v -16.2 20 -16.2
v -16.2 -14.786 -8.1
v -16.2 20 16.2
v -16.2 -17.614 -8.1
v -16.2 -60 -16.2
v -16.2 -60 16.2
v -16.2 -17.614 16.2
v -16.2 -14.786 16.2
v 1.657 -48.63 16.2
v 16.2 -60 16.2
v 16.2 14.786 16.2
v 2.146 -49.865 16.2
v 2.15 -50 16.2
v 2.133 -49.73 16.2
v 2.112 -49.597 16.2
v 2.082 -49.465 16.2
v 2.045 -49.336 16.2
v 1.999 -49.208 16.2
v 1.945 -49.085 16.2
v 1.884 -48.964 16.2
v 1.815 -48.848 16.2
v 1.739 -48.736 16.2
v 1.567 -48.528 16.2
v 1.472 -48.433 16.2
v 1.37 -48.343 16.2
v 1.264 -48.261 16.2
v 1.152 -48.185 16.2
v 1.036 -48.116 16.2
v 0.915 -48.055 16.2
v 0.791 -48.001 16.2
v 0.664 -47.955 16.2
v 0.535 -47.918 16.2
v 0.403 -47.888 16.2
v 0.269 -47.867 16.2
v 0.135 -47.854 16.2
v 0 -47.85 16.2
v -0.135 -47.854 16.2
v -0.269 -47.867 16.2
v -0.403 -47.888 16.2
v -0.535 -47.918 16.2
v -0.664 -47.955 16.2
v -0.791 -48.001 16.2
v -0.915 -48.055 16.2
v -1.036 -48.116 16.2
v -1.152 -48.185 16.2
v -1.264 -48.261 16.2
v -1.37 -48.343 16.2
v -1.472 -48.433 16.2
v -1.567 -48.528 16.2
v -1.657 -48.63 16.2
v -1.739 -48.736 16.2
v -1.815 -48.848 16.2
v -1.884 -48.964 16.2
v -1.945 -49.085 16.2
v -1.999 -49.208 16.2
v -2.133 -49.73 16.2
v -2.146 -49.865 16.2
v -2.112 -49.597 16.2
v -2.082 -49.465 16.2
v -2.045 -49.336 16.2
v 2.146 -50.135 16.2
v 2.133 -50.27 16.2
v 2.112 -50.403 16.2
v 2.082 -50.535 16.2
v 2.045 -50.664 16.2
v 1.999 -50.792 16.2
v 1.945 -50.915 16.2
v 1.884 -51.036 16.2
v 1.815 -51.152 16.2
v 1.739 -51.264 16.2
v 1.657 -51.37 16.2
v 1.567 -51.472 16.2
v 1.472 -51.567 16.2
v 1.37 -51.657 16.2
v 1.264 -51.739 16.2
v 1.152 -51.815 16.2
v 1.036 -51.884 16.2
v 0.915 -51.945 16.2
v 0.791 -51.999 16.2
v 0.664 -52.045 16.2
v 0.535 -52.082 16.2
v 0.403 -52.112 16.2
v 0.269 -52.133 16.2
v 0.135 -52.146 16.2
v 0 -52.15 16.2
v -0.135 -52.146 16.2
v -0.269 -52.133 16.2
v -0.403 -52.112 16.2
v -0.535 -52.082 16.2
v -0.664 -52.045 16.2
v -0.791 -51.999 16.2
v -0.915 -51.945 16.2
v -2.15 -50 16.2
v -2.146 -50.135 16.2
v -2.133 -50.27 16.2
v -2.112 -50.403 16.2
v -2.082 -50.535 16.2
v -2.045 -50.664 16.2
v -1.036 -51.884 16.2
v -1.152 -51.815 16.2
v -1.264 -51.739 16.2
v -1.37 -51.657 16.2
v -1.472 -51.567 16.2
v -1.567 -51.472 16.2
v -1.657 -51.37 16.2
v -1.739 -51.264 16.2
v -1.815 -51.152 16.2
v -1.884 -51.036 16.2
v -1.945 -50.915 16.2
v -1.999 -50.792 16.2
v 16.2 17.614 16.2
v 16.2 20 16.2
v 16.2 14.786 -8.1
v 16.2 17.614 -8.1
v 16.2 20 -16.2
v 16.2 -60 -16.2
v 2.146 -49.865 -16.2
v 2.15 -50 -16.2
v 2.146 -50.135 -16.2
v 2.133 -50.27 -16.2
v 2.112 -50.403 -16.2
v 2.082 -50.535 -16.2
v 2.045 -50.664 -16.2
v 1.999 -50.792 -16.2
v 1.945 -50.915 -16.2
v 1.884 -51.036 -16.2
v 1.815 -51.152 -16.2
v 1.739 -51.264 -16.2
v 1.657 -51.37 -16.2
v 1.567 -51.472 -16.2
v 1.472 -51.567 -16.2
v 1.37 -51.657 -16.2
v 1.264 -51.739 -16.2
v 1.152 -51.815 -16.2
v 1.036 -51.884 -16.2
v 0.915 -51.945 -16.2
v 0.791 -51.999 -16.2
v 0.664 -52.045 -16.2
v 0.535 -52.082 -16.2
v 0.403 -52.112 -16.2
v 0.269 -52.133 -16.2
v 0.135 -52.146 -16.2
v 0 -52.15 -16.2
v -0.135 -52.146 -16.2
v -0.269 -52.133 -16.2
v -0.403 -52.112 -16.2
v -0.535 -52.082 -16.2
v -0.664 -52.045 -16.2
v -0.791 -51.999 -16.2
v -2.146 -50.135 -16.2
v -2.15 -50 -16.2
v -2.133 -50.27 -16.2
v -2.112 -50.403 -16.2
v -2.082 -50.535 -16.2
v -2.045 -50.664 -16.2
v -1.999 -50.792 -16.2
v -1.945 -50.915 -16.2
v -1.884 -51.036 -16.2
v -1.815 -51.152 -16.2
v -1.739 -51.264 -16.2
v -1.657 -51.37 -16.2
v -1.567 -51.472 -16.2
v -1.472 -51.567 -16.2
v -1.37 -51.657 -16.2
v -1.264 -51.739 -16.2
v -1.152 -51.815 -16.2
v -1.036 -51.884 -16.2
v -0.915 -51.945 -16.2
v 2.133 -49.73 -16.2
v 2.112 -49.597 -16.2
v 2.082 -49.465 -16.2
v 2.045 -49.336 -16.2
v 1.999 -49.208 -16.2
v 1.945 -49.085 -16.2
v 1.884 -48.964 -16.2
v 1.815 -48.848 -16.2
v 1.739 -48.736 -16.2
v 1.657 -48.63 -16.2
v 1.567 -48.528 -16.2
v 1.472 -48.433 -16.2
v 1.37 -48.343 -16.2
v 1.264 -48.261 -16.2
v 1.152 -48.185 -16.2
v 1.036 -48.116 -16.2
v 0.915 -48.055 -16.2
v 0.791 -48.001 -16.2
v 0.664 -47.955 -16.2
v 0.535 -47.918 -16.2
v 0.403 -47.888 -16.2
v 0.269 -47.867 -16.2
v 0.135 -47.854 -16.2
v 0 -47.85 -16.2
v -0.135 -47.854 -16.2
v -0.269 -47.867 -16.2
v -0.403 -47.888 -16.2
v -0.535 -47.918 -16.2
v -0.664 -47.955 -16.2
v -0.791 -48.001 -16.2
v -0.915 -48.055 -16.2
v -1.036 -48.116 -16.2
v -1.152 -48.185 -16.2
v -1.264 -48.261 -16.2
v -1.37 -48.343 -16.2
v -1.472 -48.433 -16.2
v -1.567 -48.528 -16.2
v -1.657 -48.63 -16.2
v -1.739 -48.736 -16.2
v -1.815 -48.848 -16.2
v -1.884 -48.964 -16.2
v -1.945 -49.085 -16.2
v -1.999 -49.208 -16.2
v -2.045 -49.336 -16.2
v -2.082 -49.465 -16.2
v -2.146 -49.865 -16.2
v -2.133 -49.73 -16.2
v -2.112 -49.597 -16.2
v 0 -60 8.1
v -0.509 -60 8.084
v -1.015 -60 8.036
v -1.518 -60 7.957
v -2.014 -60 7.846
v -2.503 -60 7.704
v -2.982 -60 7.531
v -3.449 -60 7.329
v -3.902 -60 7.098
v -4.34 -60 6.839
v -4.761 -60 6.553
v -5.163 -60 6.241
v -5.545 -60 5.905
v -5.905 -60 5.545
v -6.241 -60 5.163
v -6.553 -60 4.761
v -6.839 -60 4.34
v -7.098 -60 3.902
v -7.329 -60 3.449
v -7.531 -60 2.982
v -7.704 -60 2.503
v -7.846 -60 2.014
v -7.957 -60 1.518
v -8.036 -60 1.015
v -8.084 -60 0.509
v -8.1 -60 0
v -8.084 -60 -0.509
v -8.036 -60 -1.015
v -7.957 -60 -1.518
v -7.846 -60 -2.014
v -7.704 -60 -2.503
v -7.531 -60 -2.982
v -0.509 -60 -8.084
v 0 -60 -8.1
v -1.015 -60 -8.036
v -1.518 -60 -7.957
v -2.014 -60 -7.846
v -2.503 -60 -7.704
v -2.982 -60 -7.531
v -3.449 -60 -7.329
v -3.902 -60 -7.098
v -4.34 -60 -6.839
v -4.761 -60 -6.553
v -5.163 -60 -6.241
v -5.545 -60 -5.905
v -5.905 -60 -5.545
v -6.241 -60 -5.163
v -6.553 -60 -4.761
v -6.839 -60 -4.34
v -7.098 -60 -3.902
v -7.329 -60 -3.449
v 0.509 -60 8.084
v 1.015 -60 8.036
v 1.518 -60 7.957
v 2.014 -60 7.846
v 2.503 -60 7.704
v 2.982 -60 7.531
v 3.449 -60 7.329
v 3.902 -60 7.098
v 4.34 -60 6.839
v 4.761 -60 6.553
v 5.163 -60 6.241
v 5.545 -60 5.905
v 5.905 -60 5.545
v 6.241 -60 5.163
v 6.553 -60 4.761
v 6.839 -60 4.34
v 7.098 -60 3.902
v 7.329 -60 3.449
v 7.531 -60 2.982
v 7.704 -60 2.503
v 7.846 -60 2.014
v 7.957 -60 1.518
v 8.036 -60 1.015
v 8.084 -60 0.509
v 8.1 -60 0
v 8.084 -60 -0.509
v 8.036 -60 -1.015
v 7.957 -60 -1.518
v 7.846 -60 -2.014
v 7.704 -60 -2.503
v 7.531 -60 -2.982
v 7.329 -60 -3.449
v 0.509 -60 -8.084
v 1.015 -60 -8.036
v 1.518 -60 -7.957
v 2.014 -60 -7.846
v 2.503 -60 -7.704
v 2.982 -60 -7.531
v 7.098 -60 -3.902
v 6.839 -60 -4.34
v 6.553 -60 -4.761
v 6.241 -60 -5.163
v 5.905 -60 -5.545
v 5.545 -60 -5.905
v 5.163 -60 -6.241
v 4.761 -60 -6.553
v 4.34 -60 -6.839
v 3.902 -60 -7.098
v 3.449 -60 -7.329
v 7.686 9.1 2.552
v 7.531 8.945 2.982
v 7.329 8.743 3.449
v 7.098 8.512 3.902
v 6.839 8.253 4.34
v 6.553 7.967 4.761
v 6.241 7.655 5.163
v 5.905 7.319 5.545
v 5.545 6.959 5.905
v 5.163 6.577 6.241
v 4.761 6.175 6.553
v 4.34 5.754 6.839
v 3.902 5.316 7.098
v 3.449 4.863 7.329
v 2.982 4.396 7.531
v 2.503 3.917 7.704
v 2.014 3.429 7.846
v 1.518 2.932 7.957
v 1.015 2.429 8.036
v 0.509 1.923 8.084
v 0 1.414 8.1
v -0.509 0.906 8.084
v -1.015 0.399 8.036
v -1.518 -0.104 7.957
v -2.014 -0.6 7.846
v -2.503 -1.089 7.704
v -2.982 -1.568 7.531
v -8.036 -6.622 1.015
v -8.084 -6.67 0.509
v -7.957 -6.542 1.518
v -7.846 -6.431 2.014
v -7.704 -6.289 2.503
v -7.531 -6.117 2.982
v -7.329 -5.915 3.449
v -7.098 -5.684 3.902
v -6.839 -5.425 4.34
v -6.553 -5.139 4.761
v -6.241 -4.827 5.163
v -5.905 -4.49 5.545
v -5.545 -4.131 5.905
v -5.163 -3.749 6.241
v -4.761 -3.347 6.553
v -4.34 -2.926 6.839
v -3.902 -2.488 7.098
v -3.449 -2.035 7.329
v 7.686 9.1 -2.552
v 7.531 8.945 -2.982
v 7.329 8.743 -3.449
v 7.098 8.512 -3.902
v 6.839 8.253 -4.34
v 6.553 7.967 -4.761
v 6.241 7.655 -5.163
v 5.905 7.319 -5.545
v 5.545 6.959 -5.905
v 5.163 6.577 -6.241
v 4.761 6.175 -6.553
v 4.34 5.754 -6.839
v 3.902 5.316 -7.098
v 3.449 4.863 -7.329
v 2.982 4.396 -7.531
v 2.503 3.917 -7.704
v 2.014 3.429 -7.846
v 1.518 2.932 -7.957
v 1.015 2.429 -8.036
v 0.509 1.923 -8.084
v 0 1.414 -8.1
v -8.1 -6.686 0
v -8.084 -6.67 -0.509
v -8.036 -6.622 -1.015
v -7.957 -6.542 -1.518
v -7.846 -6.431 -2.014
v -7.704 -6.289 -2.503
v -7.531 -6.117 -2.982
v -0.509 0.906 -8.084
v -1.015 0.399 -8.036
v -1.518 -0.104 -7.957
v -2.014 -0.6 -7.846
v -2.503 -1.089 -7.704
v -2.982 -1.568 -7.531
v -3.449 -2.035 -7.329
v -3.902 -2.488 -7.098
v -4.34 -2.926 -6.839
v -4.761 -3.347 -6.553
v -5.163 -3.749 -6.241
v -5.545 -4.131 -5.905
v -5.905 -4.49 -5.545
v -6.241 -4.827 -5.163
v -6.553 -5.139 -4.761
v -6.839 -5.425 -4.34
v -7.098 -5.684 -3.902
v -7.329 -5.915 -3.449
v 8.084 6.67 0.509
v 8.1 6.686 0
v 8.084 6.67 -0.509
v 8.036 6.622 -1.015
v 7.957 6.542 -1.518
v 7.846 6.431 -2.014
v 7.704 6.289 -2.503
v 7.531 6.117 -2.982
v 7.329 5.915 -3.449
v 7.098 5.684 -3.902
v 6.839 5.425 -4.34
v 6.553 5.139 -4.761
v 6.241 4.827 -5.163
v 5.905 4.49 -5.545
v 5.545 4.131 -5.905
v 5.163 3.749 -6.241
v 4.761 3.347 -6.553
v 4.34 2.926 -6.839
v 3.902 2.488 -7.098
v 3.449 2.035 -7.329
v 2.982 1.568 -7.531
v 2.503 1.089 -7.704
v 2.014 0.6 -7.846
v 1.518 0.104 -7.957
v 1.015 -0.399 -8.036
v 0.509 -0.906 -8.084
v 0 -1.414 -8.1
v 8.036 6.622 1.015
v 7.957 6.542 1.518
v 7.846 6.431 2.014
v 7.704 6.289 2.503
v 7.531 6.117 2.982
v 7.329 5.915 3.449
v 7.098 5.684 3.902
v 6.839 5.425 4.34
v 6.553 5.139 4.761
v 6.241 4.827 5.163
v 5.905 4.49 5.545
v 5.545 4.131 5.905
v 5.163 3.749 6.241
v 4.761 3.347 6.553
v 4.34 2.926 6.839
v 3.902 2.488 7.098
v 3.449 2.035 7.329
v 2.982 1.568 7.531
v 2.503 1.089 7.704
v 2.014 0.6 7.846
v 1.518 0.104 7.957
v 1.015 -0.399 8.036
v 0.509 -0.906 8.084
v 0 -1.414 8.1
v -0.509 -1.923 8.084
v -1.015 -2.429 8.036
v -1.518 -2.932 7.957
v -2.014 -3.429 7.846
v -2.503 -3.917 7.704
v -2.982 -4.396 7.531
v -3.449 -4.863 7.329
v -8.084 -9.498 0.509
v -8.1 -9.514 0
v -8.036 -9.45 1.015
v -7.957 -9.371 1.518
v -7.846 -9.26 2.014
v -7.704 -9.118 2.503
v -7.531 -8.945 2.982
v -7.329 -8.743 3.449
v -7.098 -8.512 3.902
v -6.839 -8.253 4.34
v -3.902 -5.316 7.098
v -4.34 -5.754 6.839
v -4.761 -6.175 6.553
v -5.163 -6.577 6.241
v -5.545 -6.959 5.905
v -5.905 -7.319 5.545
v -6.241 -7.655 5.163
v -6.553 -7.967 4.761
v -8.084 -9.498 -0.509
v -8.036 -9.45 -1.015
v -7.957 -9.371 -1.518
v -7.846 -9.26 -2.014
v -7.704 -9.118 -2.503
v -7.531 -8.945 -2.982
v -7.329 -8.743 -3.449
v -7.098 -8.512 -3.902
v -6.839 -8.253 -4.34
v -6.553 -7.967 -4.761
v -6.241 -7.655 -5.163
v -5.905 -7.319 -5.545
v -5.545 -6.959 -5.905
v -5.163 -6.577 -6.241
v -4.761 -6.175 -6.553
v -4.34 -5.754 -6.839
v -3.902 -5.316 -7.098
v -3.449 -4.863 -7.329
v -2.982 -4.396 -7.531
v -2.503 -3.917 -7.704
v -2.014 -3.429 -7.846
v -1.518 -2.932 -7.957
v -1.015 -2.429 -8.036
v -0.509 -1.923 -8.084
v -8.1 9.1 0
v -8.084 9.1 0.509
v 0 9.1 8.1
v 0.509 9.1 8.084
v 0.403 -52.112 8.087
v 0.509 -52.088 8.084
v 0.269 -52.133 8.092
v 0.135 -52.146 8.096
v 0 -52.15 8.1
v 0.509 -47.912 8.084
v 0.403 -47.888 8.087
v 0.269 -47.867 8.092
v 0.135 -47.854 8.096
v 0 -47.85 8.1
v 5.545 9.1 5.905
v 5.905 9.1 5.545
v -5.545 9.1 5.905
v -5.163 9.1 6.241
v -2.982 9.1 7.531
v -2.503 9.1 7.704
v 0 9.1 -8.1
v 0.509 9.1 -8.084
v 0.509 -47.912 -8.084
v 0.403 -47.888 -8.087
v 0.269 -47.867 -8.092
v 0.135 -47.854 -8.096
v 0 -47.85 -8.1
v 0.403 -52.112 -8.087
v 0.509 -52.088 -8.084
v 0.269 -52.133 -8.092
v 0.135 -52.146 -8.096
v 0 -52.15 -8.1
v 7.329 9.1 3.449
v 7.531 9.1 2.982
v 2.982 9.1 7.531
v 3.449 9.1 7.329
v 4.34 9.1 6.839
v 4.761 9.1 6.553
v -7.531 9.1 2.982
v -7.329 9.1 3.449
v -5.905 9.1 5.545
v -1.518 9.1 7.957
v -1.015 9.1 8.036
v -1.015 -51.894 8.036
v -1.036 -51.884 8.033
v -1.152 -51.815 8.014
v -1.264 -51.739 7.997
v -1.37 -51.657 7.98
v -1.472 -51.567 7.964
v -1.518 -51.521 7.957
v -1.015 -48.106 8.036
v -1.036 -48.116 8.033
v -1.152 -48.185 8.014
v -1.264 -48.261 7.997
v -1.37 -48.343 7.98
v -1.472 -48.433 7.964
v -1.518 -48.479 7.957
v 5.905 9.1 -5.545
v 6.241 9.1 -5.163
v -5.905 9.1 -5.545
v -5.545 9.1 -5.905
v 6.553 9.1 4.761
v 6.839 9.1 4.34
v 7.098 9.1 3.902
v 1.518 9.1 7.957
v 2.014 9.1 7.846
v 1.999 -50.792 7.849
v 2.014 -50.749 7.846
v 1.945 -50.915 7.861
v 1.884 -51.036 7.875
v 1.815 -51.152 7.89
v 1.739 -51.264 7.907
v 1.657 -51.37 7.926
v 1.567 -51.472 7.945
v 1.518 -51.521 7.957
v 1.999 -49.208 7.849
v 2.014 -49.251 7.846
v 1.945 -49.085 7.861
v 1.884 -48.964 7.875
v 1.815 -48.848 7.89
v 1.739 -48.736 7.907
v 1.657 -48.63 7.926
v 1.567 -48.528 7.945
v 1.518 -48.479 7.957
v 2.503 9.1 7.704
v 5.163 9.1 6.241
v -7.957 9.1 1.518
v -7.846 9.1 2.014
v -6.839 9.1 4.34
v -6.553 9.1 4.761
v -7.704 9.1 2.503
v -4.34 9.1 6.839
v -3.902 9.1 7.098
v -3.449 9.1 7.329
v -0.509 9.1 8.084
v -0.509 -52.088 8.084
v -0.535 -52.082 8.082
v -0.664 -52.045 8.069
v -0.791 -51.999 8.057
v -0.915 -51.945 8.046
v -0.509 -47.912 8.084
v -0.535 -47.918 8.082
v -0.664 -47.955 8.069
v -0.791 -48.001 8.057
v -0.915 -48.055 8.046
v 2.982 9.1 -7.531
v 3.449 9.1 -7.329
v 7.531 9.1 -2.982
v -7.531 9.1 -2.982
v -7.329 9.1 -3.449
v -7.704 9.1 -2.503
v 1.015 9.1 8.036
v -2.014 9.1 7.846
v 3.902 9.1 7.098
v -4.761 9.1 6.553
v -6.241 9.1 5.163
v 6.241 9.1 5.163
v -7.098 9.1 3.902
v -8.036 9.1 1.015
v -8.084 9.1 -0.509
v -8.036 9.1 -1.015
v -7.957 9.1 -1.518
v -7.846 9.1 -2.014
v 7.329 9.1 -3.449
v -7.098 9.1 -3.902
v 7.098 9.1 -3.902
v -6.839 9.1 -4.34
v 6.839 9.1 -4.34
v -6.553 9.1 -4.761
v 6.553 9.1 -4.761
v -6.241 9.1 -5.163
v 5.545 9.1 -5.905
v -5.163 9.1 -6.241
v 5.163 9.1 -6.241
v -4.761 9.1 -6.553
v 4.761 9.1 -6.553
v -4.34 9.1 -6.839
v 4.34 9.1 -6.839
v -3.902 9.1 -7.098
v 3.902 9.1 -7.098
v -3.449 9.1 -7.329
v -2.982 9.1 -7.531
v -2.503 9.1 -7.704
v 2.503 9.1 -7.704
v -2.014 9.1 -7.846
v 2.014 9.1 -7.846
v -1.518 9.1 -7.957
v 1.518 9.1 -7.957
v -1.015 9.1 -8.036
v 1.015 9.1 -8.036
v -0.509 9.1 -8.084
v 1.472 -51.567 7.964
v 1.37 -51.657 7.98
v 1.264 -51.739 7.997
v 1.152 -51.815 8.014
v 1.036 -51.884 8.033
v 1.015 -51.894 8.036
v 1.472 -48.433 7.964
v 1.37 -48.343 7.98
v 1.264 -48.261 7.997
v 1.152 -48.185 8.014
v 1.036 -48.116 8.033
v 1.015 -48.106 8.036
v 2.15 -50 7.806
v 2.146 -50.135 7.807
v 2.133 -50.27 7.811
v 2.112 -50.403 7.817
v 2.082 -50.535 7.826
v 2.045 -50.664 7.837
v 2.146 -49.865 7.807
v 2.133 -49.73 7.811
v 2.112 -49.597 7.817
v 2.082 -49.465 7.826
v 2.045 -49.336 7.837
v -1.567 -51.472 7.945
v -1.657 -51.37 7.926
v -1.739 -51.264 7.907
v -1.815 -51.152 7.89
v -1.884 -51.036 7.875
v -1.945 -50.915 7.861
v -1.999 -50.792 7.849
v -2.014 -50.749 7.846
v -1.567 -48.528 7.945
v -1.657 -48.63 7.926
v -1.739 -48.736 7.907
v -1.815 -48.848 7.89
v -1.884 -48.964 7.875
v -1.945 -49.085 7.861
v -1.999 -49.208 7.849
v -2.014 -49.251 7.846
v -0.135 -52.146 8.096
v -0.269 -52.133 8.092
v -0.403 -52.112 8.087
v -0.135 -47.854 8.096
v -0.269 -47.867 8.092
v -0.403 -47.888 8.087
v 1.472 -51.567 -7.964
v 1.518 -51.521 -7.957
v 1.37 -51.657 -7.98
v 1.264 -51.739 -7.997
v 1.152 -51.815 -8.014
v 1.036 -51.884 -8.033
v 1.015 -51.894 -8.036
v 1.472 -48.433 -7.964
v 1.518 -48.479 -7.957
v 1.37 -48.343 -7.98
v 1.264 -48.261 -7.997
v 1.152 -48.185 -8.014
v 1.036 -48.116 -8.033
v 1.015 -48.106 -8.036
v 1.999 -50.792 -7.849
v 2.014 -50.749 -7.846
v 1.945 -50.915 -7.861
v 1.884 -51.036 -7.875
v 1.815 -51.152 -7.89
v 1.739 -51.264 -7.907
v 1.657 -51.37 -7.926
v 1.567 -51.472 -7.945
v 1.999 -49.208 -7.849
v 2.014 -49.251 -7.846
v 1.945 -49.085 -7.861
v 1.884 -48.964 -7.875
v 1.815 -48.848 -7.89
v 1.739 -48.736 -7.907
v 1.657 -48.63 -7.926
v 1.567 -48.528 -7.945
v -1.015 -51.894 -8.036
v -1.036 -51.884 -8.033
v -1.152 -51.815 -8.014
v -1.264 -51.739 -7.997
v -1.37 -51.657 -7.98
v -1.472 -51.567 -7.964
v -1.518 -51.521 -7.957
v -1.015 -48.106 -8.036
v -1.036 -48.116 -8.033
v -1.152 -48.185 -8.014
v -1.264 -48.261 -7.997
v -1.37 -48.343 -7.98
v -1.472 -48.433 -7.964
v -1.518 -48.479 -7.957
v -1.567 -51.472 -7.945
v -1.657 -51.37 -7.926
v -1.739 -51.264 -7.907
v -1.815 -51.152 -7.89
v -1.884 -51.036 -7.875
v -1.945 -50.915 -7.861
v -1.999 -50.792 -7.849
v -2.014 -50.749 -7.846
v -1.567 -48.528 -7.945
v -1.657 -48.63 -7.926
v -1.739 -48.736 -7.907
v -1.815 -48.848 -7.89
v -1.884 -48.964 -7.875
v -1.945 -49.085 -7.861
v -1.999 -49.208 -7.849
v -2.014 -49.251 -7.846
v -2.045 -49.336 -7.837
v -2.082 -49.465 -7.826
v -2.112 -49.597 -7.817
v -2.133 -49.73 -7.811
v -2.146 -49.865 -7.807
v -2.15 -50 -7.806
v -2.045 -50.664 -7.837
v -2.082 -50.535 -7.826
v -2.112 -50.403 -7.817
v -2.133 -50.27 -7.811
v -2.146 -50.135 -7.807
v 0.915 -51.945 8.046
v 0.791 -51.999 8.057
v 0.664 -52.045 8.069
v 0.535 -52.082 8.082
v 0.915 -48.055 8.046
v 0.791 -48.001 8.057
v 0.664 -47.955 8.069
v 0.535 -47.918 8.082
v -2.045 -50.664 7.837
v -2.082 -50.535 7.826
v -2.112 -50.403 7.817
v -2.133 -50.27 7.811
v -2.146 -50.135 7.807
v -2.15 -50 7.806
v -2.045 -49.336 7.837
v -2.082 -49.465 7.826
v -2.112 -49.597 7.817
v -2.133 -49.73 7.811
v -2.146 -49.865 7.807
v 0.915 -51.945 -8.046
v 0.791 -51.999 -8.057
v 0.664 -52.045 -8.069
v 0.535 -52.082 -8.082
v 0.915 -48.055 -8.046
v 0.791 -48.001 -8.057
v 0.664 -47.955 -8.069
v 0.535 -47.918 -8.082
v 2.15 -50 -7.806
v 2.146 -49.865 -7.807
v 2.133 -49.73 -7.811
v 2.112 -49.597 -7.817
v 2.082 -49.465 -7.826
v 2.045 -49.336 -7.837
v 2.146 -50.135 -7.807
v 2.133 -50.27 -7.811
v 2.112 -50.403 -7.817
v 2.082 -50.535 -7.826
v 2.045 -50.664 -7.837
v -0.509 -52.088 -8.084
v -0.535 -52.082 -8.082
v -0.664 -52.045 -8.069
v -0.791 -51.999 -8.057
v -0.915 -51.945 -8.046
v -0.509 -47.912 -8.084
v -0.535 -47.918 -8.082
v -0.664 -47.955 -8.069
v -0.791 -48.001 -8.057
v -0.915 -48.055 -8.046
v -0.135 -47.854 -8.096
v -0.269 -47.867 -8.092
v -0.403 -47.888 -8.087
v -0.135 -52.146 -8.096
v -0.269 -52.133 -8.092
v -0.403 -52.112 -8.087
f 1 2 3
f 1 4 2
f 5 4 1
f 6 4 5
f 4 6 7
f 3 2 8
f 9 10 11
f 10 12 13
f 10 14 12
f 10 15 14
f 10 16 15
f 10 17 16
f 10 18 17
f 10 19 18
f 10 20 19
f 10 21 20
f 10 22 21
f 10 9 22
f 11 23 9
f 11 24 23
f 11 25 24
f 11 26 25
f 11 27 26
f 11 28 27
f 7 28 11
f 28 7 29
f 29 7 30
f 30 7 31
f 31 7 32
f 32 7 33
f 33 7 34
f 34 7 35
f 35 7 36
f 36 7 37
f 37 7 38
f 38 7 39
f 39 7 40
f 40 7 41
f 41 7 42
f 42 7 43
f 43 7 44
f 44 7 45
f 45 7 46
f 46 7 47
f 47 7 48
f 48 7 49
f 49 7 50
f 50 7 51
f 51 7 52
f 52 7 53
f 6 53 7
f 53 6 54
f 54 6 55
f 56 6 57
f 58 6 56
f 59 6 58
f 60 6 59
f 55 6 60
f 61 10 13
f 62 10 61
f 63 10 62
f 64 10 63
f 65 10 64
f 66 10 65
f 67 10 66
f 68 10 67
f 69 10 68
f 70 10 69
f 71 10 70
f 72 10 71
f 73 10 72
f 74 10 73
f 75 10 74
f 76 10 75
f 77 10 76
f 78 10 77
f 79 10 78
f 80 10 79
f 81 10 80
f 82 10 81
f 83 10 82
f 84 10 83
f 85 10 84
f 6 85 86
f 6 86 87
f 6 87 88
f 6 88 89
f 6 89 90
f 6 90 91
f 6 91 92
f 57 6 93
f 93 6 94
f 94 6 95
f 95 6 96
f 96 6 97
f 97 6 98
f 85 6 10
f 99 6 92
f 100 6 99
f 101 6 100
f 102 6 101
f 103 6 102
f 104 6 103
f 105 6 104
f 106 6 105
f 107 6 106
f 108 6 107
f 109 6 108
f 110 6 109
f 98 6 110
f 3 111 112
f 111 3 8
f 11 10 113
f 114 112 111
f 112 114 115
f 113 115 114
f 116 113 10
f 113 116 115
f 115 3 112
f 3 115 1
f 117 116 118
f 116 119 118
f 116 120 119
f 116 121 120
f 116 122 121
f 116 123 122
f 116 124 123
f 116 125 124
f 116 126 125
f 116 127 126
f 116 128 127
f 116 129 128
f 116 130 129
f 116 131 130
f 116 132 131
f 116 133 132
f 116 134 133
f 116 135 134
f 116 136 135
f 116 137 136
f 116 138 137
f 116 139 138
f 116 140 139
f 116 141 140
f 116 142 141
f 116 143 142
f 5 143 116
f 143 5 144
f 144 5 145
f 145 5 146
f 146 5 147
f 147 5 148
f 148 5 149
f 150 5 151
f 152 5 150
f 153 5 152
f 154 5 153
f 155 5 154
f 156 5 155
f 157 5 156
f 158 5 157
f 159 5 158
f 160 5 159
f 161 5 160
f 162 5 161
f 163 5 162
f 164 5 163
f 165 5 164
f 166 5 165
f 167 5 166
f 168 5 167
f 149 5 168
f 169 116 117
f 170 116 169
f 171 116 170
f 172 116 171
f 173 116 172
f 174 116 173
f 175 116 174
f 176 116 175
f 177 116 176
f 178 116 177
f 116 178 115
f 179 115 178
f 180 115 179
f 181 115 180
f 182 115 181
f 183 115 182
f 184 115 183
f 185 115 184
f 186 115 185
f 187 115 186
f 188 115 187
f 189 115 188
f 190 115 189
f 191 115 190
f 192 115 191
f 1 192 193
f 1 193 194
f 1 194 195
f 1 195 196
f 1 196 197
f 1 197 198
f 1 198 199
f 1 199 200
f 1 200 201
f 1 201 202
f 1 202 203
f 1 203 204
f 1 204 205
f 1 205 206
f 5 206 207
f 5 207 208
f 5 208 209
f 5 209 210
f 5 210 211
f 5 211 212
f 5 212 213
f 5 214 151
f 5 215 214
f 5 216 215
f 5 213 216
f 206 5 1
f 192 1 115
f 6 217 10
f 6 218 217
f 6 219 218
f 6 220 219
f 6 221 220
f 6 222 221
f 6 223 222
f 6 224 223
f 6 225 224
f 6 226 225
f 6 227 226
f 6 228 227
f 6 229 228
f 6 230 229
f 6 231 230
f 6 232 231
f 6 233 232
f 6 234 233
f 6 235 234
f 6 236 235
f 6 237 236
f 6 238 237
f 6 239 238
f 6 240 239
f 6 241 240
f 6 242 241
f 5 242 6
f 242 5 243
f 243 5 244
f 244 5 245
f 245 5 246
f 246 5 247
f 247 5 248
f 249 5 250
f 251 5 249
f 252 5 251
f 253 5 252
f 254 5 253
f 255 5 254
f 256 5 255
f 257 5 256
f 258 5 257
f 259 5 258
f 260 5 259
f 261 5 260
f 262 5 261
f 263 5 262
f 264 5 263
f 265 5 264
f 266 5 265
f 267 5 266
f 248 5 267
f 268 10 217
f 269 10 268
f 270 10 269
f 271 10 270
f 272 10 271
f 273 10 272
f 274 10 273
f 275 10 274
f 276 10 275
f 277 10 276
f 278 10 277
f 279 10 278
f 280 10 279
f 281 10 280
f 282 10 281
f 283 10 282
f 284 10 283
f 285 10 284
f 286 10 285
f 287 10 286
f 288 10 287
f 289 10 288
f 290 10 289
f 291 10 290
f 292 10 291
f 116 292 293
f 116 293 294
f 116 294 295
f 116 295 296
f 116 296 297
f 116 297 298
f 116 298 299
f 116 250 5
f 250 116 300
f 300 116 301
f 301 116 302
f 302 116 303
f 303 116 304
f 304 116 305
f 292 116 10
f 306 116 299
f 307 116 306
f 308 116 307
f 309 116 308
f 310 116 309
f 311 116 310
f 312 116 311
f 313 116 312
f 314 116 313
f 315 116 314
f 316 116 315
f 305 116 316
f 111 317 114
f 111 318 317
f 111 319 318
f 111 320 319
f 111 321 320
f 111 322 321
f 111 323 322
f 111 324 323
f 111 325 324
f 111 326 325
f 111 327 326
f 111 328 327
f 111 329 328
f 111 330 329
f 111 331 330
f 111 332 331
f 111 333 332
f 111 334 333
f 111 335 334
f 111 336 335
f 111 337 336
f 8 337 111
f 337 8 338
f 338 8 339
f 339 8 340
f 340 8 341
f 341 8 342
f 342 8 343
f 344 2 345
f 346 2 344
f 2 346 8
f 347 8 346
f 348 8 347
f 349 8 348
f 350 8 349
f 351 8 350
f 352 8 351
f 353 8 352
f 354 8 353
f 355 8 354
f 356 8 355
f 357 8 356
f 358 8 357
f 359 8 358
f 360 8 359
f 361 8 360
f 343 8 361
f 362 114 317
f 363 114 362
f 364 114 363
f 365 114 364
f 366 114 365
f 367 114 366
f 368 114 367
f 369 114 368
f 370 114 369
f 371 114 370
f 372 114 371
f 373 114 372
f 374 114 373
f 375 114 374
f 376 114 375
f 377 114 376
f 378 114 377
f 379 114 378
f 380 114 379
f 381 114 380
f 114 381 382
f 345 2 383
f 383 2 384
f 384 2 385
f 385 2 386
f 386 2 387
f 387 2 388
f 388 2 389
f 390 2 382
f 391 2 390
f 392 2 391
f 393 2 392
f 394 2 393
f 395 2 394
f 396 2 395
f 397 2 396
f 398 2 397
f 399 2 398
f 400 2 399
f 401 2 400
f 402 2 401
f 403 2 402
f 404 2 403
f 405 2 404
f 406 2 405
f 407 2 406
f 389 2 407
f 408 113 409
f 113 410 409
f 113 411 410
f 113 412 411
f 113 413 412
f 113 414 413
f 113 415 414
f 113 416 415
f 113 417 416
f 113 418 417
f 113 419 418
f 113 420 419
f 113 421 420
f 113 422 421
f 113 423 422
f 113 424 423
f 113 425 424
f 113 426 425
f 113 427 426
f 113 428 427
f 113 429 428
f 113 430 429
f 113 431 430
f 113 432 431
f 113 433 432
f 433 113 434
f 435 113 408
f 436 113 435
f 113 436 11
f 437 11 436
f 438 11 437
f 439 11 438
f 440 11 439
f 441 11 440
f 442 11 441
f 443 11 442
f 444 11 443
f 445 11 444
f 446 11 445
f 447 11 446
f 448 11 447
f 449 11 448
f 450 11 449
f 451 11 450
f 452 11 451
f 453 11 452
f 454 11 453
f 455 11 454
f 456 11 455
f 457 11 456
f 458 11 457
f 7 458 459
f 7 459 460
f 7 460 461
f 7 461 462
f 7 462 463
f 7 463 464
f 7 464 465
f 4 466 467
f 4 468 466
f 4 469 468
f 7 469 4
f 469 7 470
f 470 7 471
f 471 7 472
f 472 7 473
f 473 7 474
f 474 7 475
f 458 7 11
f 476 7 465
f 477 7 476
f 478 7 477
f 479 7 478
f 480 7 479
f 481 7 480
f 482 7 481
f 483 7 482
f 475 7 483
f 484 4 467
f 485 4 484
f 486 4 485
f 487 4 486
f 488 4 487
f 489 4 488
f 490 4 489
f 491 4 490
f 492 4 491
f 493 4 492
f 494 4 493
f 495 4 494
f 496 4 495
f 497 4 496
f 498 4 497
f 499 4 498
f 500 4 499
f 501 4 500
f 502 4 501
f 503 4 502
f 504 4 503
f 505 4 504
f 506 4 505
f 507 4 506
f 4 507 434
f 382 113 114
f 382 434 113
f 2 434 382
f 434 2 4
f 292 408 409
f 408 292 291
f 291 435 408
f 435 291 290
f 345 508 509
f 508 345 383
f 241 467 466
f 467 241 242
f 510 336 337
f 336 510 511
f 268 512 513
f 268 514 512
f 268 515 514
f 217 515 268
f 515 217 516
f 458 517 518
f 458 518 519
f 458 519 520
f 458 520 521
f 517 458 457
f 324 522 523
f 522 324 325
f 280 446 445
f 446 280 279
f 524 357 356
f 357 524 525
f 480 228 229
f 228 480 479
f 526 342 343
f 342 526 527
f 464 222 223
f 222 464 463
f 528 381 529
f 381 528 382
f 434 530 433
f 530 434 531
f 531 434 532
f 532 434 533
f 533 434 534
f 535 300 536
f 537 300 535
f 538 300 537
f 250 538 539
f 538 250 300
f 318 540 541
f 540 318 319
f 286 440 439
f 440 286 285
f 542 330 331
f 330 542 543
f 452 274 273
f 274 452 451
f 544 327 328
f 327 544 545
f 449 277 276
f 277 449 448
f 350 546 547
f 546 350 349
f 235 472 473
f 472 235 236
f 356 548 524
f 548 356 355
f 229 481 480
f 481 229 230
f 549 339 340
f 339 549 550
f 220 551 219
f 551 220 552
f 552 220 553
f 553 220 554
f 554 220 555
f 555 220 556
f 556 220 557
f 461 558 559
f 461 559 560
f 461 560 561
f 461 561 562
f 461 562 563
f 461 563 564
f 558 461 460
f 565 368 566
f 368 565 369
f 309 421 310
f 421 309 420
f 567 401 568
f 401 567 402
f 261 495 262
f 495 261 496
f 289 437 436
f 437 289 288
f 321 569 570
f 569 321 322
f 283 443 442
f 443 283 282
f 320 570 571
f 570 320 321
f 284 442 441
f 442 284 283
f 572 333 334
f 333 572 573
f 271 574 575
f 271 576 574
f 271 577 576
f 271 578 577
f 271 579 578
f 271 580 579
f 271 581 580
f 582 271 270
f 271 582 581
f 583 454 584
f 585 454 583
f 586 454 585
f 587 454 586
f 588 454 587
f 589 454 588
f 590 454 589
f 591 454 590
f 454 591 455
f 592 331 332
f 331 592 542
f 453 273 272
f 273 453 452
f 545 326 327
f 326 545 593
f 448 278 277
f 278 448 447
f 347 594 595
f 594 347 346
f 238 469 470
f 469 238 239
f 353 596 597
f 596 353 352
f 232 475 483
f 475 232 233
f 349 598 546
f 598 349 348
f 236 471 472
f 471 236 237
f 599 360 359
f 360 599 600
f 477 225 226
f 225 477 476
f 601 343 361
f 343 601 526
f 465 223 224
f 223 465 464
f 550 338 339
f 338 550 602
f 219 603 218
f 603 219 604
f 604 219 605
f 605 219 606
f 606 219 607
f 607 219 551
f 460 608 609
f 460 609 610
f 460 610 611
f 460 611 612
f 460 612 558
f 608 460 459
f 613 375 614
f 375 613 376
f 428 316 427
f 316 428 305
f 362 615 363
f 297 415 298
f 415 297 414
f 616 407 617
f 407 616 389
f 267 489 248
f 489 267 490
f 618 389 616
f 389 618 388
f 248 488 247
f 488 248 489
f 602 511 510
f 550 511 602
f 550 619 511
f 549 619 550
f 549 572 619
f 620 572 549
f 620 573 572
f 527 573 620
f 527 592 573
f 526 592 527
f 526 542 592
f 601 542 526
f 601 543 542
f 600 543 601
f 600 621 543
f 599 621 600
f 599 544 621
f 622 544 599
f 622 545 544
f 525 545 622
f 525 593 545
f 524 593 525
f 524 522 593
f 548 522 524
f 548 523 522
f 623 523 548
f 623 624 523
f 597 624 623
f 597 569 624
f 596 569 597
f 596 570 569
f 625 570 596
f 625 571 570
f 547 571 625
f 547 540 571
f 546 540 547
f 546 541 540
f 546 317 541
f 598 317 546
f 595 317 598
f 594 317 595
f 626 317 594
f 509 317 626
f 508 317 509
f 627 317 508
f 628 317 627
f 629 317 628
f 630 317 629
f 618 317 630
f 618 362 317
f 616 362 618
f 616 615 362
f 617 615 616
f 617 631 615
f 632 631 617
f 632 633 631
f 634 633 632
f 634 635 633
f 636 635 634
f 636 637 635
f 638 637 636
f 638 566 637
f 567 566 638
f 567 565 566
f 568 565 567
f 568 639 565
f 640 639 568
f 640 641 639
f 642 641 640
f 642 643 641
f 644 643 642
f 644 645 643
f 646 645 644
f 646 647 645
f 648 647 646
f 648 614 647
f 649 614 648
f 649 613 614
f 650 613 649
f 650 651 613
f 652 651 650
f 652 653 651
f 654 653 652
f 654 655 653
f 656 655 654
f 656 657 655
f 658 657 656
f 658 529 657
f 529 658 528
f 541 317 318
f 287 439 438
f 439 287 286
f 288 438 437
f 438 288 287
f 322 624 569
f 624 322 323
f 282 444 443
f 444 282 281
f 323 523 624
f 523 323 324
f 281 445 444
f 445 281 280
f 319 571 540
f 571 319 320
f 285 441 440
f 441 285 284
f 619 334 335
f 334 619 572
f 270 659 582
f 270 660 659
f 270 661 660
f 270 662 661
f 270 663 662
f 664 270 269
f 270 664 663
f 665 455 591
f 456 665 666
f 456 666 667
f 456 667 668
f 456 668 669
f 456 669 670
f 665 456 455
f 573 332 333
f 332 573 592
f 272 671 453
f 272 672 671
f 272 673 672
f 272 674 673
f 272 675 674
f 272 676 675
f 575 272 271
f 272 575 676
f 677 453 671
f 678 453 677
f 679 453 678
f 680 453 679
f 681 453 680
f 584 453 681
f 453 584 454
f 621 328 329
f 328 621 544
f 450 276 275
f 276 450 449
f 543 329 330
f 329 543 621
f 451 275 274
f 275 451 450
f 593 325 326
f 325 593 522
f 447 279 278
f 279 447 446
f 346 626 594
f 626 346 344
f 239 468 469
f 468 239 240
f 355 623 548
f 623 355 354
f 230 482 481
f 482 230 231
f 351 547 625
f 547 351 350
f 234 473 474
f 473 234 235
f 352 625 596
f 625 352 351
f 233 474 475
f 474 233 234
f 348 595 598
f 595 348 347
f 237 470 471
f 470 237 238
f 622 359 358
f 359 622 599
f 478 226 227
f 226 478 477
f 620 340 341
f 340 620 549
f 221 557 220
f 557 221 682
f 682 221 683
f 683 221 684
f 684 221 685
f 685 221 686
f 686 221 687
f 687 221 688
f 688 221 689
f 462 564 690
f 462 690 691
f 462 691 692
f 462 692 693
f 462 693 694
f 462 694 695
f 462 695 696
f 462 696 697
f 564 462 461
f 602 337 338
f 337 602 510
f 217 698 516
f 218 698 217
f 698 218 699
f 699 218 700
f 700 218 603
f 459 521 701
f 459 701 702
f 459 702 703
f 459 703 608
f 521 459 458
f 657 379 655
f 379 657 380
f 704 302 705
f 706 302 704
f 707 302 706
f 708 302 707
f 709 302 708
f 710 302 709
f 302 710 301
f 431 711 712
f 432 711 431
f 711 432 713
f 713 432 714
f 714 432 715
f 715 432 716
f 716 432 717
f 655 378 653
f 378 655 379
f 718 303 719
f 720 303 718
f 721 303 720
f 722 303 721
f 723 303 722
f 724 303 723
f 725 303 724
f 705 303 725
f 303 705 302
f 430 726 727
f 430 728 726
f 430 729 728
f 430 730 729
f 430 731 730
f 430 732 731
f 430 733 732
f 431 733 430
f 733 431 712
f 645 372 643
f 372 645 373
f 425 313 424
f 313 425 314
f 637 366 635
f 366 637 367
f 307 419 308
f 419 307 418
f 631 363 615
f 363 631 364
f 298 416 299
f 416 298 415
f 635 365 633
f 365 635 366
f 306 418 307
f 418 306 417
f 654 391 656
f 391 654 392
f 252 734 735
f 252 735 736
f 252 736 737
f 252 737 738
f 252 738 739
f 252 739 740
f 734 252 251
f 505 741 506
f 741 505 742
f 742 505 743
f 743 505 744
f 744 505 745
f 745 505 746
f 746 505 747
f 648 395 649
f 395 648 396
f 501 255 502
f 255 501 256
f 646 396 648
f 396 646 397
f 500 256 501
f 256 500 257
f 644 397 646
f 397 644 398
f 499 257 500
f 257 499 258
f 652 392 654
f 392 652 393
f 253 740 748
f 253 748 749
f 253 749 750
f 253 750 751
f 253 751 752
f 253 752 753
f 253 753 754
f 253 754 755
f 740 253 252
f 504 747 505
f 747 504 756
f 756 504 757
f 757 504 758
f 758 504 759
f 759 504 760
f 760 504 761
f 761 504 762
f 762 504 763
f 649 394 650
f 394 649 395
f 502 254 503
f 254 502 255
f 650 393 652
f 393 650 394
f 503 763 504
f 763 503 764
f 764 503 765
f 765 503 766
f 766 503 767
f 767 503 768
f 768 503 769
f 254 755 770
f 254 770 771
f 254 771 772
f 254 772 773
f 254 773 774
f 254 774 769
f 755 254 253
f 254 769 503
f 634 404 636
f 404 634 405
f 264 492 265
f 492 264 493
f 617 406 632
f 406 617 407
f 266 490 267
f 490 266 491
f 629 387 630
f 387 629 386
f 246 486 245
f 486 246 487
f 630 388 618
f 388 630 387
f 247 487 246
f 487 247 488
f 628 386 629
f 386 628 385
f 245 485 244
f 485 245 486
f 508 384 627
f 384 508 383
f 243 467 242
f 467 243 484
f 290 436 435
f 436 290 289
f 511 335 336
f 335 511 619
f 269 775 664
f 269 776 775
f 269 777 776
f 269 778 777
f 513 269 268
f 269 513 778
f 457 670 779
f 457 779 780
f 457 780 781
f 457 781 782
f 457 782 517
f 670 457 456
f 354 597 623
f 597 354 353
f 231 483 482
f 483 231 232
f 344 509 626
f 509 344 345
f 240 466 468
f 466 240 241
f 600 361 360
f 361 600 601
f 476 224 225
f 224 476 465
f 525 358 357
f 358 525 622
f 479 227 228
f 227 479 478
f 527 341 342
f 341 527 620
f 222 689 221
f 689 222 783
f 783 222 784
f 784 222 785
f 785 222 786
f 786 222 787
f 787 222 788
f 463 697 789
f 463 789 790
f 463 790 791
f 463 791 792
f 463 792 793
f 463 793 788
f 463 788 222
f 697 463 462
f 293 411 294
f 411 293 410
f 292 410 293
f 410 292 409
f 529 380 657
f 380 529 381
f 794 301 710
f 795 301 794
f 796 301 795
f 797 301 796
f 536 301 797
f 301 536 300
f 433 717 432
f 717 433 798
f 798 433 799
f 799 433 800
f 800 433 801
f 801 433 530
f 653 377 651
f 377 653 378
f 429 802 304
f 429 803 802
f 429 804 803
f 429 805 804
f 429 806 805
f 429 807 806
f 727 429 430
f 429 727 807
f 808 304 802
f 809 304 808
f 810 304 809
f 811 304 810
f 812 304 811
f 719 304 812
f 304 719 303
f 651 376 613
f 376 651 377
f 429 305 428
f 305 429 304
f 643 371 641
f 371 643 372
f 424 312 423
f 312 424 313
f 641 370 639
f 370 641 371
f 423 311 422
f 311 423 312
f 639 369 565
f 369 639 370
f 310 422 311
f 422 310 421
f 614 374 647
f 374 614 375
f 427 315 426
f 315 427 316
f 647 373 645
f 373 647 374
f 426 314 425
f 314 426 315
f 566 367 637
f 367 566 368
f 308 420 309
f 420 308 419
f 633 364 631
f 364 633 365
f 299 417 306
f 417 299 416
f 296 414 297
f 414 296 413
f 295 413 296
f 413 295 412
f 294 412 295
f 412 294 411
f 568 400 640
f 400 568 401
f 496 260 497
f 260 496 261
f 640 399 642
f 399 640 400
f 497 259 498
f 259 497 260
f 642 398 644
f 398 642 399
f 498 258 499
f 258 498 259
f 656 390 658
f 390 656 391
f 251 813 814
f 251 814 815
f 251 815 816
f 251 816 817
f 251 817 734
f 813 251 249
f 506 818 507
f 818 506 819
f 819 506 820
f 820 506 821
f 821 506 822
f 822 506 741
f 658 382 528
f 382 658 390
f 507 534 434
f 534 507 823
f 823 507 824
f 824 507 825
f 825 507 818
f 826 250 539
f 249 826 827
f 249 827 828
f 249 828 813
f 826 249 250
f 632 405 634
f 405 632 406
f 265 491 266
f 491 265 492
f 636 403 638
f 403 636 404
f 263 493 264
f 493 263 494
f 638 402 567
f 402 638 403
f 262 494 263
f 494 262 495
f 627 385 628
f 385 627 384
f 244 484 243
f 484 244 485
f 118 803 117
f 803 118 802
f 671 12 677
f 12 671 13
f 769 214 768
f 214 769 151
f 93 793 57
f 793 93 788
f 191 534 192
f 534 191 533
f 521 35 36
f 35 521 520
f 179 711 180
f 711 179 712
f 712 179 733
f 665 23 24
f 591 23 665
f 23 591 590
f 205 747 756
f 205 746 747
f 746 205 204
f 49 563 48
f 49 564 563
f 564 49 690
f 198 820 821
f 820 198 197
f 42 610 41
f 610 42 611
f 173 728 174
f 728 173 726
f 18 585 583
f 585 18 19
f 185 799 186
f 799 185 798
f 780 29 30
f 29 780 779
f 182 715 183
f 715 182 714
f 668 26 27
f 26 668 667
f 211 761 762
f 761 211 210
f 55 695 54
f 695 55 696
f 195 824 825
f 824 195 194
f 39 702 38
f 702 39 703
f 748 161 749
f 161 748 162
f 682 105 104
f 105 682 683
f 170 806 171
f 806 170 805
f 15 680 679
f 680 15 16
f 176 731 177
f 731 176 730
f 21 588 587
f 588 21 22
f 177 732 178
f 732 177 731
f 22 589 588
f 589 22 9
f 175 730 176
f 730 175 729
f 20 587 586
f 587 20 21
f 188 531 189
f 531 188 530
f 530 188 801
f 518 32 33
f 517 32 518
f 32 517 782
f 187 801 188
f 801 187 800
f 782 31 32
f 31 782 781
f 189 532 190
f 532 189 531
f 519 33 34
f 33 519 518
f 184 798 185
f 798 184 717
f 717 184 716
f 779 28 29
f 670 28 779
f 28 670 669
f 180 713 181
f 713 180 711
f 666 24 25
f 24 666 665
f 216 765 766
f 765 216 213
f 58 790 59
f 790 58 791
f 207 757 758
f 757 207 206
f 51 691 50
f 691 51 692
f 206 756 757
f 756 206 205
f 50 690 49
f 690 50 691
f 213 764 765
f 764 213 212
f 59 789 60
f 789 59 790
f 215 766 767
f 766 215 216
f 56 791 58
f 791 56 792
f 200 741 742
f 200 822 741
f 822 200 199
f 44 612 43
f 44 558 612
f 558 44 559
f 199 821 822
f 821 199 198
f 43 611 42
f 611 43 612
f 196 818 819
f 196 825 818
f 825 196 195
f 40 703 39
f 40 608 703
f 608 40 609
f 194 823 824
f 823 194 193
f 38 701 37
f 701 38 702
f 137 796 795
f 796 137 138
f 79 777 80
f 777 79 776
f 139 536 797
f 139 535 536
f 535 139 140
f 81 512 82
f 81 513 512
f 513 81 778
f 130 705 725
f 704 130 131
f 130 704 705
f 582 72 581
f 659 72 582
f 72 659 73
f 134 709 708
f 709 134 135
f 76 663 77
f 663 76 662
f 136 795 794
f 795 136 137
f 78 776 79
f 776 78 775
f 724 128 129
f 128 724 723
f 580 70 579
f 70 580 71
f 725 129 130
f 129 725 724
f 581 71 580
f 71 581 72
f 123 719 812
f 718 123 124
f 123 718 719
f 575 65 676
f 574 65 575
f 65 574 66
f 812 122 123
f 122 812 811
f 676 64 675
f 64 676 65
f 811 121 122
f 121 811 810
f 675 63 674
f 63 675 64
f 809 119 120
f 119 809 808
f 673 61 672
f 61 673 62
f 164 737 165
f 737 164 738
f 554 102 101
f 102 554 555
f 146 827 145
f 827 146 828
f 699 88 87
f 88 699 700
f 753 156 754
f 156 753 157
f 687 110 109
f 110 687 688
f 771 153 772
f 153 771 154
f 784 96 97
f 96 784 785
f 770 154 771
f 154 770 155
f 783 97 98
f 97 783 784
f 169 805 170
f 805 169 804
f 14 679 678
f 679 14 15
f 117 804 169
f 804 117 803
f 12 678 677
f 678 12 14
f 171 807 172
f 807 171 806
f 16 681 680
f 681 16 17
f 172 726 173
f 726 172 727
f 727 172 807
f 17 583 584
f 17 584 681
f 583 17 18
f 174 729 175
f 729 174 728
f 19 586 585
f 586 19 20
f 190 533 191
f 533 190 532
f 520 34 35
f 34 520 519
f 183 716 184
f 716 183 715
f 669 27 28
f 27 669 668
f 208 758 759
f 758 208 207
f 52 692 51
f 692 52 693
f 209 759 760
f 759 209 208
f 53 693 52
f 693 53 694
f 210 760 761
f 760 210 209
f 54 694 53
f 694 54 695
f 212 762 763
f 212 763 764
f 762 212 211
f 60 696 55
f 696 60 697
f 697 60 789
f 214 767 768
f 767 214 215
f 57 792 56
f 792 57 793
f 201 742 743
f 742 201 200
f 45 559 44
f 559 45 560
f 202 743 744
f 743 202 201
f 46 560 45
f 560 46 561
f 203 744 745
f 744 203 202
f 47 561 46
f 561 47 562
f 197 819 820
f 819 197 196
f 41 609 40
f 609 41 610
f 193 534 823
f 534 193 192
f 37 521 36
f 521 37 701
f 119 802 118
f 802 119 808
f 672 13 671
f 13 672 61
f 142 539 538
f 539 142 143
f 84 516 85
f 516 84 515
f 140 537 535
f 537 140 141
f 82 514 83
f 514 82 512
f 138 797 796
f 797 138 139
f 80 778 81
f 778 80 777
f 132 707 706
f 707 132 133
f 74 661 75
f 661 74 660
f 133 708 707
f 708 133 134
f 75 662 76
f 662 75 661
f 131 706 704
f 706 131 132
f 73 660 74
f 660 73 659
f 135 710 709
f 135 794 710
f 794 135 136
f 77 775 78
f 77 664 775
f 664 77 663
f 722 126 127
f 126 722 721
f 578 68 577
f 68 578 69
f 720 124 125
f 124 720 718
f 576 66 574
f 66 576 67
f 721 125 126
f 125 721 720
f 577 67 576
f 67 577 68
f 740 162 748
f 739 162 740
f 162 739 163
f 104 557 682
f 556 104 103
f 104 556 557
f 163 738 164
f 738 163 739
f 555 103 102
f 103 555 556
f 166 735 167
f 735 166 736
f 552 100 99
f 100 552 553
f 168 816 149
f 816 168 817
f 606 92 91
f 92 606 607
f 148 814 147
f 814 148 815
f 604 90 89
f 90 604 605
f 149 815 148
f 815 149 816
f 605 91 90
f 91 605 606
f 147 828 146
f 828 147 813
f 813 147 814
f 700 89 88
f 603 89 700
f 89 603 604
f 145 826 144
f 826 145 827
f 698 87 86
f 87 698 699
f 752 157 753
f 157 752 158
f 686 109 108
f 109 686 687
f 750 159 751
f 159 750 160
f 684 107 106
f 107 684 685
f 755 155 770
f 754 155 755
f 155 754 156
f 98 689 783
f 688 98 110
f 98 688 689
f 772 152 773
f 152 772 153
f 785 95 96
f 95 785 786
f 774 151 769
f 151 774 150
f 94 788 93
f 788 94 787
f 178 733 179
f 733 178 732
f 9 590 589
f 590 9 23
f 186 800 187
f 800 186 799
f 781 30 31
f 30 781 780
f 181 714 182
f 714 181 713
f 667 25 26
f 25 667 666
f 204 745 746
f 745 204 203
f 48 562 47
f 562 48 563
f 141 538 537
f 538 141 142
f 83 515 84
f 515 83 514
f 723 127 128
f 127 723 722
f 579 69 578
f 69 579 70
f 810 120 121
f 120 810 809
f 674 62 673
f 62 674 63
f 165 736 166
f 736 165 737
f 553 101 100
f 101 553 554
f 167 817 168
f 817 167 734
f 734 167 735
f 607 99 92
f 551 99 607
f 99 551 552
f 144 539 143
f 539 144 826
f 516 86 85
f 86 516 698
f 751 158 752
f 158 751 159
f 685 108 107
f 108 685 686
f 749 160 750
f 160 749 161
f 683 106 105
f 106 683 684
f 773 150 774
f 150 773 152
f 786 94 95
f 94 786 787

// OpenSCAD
difference() {
	translate(v = [0, -20, 0]) {
		cube(center = true, size = [32.4000000000, 80, 32.4000000000]);
	}
	translate(v = [0, 0, 12.1500000000]) {
		rotate(a = -45) {
			cube(center = true, size = [2, 100, 40.5000000000]);
		}
	}
	translate(v = [0, 9.1000000000, 0]) {
		rotate(a = [90, 0, 0]) {
			cylinder($fn = 100, d = 16.2000000000, h = 200);
		}
	}
	translate(v = [0, -50.0000000000, 0]) {
		cylinder($fn = 100, center = true, d = 4.3000000000, h = 100);
	}
}
